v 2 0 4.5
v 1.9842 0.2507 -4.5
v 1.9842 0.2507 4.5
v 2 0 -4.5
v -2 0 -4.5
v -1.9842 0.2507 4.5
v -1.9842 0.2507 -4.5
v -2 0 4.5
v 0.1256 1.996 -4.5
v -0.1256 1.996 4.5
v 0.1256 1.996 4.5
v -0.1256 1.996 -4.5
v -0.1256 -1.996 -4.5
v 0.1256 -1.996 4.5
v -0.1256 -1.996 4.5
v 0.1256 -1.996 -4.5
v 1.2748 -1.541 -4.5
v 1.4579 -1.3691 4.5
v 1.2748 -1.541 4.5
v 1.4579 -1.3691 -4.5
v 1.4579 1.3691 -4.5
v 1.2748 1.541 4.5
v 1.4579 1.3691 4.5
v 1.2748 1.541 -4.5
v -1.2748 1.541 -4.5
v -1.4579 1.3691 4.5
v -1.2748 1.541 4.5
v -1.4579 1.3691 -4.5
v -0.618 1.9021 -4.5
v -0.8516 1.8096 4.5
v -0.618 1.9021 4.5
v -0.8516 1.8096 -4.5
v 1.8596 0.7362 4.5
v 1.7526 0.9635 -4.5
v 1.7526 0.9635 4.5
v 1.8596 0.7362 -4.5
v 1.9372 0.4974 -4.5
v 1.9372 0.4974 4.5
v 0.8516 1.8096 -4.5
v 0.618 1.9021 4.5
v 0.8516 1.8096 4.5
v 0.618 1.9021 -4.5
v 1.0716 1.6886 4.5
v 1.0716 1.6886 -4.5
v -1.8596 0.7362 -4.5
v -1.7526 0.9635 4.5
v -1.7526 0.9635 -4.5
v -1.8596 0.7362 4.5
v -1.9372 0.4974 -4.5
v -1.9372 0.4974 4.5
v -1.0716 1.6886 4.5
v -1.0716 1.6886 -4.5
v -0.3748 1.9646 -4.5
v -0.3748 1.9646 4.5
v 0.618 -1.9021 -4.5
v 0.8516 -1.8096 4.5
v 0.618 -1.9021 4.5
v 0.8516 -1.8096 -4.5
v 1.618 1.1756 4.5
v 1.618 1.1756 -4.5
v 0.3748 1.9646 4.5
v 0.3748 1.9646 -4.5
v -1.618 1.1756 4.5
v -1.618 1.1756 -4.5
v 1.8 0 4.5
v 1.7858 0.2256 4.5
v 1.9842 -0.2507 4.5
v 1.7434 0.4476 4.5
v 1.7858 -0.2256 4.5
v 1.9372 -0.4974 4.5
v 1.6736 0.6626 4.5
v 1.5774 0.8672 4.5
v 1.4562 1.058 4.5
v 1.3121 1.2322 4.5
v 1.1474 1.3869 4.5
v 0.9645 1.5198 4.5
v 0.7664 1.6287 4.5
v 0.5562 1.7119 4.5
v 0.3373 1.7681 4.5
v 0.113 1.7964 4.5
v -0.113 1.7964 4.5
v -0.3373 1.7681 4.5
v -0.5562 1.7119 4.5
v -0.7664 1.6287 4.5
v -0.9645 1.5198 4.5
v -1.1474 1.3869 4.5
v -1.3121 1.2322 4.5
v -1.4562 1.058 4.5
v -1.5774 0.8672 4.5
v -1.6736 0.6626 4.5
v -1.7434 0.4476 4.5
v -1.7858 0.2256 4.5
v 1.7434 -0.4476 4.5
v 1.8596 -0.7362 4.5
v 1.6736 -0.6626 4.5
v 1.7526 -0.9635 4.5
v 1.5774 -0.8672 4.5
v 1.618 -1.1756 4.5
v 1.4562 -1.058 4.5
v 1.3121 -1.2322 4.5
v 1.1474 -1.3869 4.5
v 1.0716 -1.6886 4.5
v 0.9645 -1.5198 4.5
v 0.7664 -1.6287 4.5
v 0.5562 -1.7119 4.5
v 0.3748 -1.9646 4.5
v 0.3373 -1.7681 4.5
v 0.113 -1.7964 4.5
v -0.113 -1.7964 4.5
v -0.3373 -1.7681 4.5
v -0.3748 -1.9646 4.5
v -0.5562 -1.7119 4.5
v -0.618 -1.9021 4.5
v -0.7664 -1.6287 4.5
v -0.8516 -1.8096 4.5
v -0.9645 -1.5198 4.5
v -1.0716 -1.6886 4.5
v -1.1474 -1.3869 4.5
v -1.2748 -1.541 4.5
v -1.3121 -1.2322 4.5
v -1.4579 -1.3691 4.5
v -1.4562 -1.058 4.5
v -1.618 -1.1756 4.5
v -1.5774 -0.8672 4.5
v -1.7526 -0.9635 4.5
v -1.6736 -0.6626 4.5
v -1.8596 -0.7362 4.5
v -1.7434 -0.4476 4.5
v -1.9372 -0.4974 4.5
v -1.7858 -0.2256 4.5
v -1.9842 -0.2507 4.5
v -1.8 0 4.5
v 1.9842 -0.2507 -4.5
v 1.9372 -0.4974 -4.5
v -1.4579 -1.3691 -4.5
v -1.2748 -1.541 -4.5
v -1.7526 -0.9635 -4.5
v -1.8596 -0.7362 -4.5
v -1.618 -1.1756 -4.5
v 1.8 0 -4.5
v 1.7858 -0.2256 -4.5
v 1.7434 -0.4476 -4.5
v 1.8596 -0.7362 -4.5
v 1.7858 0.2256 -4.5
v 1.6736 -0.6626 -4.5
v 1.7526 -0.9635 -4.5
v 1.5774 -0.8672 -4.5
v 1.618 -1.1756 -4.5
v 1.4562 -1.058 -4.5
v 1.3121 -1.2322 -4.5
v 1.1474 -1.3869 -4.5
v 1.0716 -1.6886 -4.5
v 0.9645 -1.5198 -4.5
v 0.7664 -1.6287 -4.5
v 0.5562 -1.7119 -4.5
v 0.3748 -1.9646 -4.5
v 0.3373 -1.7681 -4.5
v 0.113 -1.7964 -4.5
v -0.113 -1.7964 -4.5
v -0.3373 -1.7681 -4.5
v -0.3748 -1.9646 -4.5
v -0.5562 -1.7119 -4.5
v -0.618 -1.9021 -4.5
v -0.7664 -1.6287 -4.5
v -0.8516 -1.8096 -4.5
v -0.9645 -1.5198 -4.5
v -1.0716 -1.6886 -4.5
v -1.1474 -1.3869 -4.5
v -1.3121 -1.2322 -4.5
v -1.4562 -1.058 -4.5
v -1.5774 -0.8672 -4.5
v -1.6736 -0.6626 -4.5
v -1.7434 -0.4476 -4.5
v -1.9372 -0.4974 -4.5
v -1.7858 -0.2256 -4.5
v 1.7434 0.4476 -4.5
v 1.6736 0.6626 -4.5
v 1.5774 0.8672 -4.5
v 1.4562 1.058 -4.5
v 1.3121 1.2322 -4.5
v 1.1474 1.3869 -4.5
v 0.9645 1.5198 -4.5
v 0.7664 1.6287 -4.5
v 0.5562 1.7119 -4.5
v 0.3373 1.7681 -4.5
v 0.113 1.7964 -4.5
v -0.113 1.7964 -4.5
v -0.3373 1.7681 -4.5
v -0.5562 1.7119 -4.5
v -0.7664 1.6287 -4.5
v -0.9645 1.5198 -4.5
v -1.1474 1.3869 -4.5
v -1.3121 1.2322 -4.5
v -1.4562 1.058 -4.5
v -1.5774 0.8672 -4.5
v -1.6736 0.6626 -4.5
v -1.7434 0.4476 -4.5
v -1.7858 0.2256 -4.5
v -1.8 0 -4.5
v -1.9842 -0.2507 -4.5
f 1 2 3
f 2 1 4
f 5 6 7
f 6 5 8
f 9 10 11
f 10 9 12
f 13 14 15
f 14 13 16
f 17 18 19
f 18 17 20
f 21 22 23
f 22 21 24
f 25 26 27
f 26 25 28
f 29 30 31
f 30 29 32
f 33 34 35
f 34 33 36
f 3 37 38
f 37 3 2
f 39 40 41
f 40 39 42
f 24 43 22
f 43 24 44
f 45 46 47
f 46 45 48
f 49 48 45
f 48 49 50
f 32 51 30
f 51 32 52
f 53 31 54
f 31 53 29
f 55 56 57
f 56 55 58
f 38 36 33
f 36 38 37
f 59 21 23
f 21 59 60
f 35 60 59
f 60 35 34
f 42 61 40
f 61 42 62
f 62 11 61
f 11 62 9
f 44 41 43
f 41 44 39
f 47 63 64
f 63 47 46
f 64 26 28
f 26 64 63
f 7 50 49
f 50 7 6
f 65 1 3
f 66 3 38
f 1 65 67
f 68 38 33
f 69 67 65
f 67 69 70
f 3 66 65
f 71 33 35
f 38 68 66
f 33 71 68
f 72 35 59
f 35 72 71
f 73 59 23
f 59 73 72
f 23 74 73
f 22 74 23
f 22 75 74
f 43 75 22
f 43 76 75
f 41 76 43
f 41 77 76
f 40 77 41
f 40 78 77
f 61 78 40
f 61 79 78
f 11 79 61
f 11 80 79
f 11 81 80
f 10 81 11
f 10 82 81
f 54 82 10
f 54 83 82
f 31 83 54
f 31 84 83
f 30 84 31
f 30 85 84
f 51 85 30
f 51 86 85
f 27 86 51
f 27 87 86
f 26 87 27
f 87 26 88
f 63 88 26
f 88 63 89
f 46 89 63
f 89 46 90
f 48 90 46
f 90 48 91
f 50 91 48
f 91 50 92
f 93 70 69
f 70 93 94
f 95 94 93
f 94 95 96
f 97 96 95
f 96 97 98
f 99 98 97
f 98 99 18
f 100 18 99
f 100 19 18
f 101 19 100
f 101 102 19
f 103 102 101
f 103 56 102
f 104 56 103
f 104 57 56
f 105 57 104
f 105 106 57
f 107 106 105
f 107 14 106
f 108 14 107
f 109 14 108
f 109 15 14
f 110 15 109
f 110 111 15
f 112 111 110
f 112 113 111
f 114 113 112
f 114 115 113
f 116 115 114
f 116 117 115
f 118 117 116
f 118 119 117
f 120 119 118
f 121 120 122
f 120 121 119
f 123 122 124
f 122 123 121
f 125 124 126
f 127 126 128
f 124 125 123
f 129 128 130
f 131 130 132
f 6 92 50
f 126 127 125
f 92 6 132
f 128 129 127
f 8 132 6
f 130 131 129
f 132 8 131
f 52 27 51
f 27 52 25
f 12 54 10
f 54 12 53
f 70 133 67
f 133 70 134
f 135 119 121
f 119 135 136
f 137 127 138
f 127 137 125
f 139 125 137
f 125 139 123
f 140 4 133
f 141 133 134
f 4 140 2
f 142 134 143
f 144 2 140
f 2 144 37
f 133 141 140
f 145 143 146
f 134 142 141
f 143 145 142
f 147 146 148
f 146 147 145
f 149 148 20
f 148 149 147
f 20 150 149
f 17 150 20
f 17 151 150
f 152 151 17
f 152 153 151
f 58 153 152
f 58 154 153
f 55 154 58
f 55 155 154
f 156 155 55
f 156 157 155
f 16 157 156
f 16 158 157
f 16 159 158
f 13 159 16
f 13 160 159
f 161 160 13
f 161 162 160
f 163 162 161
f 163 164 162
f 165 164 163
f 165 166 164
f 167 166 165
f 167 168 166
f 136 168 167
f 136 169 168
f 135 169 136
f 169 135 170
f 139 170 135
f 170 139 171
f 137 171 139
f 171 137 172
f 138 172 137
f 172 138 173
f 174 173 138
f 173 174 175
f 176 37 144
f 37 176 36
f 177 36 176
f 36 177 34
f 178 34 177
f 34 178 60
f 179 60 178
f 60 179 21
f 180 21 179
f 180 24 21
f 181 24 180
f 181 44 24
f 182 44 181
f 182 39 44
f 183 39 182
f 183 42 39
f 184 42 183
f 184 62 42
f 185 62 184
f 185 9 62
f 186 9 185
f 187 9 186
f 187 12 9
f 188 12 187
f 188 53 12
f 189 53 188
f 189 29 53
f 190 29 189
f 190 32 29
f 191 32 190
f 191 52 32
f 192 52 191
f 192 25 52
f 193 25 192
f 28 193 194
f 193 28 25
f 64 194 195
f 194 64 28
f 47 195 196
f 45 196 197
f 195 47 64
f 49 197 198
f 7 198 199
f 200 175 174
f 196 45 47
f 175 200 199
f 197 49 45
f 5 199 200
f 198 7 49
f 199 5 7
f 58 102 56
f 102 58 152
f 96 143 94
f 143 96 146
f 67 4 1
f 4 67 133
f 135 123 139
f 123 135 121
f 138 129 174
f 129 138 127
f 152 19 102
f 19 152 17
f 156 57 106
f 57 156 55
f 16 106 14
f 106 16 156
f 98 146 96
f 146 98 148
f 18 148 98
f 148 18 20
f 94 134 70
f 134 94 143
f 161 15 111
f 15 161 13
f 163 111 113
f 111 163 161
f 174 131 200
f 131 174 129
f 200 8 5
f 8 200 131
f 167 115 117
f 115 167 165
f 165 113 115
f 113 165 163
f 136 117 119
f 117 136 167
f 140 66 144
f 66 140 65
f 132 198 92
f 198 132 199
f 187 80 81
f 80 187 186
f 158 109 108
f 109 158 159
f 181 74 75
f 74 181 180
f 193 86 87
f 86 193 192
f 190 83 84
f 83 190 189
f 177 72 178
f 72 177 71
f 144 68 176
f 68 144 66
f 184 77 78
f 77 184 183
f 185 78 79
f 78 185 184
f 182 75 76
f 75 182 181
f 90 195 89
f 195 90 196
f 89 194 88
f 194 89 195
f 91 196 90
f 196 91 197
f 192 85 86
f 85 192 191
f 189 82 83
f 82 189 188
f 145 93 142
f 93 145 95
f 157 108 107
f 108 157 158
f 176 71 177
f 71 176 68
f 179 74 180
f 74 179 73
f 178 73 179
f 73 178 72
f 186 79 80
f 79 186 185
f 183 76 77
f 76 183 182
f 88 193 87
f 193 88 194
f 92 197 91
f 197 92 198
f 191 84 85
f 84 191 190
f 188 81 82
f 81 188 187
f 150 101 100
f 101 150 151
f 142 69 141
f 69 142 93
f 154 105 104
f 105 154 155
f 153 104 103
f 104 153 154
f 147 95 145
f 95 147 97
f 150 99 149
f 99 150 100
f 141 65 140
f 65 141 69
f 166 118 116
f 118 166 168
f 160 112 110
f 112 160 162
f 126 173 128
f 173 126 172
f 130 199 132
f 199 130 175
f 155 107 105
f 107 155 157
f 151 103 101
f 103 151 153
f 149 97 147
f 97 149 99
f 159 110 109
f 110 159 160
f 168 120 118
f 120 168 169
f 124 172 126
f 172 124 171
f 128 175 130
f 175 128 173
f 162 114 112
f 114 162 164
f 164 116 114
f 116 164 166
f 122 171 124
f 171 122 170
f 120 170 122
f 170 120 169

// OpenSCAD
$fn = 50;


difference() {
	union() {
		translate(v = [0, 0, -4.5000000000]) {
			cylinder(h = 9, r = 2.0000000000);
		}
	}
	union() {
		translate(v = [0, 0, -100.0000000000]) {
			cylinder(h = 200, r = 1.8000000000);
		}
	}
}
